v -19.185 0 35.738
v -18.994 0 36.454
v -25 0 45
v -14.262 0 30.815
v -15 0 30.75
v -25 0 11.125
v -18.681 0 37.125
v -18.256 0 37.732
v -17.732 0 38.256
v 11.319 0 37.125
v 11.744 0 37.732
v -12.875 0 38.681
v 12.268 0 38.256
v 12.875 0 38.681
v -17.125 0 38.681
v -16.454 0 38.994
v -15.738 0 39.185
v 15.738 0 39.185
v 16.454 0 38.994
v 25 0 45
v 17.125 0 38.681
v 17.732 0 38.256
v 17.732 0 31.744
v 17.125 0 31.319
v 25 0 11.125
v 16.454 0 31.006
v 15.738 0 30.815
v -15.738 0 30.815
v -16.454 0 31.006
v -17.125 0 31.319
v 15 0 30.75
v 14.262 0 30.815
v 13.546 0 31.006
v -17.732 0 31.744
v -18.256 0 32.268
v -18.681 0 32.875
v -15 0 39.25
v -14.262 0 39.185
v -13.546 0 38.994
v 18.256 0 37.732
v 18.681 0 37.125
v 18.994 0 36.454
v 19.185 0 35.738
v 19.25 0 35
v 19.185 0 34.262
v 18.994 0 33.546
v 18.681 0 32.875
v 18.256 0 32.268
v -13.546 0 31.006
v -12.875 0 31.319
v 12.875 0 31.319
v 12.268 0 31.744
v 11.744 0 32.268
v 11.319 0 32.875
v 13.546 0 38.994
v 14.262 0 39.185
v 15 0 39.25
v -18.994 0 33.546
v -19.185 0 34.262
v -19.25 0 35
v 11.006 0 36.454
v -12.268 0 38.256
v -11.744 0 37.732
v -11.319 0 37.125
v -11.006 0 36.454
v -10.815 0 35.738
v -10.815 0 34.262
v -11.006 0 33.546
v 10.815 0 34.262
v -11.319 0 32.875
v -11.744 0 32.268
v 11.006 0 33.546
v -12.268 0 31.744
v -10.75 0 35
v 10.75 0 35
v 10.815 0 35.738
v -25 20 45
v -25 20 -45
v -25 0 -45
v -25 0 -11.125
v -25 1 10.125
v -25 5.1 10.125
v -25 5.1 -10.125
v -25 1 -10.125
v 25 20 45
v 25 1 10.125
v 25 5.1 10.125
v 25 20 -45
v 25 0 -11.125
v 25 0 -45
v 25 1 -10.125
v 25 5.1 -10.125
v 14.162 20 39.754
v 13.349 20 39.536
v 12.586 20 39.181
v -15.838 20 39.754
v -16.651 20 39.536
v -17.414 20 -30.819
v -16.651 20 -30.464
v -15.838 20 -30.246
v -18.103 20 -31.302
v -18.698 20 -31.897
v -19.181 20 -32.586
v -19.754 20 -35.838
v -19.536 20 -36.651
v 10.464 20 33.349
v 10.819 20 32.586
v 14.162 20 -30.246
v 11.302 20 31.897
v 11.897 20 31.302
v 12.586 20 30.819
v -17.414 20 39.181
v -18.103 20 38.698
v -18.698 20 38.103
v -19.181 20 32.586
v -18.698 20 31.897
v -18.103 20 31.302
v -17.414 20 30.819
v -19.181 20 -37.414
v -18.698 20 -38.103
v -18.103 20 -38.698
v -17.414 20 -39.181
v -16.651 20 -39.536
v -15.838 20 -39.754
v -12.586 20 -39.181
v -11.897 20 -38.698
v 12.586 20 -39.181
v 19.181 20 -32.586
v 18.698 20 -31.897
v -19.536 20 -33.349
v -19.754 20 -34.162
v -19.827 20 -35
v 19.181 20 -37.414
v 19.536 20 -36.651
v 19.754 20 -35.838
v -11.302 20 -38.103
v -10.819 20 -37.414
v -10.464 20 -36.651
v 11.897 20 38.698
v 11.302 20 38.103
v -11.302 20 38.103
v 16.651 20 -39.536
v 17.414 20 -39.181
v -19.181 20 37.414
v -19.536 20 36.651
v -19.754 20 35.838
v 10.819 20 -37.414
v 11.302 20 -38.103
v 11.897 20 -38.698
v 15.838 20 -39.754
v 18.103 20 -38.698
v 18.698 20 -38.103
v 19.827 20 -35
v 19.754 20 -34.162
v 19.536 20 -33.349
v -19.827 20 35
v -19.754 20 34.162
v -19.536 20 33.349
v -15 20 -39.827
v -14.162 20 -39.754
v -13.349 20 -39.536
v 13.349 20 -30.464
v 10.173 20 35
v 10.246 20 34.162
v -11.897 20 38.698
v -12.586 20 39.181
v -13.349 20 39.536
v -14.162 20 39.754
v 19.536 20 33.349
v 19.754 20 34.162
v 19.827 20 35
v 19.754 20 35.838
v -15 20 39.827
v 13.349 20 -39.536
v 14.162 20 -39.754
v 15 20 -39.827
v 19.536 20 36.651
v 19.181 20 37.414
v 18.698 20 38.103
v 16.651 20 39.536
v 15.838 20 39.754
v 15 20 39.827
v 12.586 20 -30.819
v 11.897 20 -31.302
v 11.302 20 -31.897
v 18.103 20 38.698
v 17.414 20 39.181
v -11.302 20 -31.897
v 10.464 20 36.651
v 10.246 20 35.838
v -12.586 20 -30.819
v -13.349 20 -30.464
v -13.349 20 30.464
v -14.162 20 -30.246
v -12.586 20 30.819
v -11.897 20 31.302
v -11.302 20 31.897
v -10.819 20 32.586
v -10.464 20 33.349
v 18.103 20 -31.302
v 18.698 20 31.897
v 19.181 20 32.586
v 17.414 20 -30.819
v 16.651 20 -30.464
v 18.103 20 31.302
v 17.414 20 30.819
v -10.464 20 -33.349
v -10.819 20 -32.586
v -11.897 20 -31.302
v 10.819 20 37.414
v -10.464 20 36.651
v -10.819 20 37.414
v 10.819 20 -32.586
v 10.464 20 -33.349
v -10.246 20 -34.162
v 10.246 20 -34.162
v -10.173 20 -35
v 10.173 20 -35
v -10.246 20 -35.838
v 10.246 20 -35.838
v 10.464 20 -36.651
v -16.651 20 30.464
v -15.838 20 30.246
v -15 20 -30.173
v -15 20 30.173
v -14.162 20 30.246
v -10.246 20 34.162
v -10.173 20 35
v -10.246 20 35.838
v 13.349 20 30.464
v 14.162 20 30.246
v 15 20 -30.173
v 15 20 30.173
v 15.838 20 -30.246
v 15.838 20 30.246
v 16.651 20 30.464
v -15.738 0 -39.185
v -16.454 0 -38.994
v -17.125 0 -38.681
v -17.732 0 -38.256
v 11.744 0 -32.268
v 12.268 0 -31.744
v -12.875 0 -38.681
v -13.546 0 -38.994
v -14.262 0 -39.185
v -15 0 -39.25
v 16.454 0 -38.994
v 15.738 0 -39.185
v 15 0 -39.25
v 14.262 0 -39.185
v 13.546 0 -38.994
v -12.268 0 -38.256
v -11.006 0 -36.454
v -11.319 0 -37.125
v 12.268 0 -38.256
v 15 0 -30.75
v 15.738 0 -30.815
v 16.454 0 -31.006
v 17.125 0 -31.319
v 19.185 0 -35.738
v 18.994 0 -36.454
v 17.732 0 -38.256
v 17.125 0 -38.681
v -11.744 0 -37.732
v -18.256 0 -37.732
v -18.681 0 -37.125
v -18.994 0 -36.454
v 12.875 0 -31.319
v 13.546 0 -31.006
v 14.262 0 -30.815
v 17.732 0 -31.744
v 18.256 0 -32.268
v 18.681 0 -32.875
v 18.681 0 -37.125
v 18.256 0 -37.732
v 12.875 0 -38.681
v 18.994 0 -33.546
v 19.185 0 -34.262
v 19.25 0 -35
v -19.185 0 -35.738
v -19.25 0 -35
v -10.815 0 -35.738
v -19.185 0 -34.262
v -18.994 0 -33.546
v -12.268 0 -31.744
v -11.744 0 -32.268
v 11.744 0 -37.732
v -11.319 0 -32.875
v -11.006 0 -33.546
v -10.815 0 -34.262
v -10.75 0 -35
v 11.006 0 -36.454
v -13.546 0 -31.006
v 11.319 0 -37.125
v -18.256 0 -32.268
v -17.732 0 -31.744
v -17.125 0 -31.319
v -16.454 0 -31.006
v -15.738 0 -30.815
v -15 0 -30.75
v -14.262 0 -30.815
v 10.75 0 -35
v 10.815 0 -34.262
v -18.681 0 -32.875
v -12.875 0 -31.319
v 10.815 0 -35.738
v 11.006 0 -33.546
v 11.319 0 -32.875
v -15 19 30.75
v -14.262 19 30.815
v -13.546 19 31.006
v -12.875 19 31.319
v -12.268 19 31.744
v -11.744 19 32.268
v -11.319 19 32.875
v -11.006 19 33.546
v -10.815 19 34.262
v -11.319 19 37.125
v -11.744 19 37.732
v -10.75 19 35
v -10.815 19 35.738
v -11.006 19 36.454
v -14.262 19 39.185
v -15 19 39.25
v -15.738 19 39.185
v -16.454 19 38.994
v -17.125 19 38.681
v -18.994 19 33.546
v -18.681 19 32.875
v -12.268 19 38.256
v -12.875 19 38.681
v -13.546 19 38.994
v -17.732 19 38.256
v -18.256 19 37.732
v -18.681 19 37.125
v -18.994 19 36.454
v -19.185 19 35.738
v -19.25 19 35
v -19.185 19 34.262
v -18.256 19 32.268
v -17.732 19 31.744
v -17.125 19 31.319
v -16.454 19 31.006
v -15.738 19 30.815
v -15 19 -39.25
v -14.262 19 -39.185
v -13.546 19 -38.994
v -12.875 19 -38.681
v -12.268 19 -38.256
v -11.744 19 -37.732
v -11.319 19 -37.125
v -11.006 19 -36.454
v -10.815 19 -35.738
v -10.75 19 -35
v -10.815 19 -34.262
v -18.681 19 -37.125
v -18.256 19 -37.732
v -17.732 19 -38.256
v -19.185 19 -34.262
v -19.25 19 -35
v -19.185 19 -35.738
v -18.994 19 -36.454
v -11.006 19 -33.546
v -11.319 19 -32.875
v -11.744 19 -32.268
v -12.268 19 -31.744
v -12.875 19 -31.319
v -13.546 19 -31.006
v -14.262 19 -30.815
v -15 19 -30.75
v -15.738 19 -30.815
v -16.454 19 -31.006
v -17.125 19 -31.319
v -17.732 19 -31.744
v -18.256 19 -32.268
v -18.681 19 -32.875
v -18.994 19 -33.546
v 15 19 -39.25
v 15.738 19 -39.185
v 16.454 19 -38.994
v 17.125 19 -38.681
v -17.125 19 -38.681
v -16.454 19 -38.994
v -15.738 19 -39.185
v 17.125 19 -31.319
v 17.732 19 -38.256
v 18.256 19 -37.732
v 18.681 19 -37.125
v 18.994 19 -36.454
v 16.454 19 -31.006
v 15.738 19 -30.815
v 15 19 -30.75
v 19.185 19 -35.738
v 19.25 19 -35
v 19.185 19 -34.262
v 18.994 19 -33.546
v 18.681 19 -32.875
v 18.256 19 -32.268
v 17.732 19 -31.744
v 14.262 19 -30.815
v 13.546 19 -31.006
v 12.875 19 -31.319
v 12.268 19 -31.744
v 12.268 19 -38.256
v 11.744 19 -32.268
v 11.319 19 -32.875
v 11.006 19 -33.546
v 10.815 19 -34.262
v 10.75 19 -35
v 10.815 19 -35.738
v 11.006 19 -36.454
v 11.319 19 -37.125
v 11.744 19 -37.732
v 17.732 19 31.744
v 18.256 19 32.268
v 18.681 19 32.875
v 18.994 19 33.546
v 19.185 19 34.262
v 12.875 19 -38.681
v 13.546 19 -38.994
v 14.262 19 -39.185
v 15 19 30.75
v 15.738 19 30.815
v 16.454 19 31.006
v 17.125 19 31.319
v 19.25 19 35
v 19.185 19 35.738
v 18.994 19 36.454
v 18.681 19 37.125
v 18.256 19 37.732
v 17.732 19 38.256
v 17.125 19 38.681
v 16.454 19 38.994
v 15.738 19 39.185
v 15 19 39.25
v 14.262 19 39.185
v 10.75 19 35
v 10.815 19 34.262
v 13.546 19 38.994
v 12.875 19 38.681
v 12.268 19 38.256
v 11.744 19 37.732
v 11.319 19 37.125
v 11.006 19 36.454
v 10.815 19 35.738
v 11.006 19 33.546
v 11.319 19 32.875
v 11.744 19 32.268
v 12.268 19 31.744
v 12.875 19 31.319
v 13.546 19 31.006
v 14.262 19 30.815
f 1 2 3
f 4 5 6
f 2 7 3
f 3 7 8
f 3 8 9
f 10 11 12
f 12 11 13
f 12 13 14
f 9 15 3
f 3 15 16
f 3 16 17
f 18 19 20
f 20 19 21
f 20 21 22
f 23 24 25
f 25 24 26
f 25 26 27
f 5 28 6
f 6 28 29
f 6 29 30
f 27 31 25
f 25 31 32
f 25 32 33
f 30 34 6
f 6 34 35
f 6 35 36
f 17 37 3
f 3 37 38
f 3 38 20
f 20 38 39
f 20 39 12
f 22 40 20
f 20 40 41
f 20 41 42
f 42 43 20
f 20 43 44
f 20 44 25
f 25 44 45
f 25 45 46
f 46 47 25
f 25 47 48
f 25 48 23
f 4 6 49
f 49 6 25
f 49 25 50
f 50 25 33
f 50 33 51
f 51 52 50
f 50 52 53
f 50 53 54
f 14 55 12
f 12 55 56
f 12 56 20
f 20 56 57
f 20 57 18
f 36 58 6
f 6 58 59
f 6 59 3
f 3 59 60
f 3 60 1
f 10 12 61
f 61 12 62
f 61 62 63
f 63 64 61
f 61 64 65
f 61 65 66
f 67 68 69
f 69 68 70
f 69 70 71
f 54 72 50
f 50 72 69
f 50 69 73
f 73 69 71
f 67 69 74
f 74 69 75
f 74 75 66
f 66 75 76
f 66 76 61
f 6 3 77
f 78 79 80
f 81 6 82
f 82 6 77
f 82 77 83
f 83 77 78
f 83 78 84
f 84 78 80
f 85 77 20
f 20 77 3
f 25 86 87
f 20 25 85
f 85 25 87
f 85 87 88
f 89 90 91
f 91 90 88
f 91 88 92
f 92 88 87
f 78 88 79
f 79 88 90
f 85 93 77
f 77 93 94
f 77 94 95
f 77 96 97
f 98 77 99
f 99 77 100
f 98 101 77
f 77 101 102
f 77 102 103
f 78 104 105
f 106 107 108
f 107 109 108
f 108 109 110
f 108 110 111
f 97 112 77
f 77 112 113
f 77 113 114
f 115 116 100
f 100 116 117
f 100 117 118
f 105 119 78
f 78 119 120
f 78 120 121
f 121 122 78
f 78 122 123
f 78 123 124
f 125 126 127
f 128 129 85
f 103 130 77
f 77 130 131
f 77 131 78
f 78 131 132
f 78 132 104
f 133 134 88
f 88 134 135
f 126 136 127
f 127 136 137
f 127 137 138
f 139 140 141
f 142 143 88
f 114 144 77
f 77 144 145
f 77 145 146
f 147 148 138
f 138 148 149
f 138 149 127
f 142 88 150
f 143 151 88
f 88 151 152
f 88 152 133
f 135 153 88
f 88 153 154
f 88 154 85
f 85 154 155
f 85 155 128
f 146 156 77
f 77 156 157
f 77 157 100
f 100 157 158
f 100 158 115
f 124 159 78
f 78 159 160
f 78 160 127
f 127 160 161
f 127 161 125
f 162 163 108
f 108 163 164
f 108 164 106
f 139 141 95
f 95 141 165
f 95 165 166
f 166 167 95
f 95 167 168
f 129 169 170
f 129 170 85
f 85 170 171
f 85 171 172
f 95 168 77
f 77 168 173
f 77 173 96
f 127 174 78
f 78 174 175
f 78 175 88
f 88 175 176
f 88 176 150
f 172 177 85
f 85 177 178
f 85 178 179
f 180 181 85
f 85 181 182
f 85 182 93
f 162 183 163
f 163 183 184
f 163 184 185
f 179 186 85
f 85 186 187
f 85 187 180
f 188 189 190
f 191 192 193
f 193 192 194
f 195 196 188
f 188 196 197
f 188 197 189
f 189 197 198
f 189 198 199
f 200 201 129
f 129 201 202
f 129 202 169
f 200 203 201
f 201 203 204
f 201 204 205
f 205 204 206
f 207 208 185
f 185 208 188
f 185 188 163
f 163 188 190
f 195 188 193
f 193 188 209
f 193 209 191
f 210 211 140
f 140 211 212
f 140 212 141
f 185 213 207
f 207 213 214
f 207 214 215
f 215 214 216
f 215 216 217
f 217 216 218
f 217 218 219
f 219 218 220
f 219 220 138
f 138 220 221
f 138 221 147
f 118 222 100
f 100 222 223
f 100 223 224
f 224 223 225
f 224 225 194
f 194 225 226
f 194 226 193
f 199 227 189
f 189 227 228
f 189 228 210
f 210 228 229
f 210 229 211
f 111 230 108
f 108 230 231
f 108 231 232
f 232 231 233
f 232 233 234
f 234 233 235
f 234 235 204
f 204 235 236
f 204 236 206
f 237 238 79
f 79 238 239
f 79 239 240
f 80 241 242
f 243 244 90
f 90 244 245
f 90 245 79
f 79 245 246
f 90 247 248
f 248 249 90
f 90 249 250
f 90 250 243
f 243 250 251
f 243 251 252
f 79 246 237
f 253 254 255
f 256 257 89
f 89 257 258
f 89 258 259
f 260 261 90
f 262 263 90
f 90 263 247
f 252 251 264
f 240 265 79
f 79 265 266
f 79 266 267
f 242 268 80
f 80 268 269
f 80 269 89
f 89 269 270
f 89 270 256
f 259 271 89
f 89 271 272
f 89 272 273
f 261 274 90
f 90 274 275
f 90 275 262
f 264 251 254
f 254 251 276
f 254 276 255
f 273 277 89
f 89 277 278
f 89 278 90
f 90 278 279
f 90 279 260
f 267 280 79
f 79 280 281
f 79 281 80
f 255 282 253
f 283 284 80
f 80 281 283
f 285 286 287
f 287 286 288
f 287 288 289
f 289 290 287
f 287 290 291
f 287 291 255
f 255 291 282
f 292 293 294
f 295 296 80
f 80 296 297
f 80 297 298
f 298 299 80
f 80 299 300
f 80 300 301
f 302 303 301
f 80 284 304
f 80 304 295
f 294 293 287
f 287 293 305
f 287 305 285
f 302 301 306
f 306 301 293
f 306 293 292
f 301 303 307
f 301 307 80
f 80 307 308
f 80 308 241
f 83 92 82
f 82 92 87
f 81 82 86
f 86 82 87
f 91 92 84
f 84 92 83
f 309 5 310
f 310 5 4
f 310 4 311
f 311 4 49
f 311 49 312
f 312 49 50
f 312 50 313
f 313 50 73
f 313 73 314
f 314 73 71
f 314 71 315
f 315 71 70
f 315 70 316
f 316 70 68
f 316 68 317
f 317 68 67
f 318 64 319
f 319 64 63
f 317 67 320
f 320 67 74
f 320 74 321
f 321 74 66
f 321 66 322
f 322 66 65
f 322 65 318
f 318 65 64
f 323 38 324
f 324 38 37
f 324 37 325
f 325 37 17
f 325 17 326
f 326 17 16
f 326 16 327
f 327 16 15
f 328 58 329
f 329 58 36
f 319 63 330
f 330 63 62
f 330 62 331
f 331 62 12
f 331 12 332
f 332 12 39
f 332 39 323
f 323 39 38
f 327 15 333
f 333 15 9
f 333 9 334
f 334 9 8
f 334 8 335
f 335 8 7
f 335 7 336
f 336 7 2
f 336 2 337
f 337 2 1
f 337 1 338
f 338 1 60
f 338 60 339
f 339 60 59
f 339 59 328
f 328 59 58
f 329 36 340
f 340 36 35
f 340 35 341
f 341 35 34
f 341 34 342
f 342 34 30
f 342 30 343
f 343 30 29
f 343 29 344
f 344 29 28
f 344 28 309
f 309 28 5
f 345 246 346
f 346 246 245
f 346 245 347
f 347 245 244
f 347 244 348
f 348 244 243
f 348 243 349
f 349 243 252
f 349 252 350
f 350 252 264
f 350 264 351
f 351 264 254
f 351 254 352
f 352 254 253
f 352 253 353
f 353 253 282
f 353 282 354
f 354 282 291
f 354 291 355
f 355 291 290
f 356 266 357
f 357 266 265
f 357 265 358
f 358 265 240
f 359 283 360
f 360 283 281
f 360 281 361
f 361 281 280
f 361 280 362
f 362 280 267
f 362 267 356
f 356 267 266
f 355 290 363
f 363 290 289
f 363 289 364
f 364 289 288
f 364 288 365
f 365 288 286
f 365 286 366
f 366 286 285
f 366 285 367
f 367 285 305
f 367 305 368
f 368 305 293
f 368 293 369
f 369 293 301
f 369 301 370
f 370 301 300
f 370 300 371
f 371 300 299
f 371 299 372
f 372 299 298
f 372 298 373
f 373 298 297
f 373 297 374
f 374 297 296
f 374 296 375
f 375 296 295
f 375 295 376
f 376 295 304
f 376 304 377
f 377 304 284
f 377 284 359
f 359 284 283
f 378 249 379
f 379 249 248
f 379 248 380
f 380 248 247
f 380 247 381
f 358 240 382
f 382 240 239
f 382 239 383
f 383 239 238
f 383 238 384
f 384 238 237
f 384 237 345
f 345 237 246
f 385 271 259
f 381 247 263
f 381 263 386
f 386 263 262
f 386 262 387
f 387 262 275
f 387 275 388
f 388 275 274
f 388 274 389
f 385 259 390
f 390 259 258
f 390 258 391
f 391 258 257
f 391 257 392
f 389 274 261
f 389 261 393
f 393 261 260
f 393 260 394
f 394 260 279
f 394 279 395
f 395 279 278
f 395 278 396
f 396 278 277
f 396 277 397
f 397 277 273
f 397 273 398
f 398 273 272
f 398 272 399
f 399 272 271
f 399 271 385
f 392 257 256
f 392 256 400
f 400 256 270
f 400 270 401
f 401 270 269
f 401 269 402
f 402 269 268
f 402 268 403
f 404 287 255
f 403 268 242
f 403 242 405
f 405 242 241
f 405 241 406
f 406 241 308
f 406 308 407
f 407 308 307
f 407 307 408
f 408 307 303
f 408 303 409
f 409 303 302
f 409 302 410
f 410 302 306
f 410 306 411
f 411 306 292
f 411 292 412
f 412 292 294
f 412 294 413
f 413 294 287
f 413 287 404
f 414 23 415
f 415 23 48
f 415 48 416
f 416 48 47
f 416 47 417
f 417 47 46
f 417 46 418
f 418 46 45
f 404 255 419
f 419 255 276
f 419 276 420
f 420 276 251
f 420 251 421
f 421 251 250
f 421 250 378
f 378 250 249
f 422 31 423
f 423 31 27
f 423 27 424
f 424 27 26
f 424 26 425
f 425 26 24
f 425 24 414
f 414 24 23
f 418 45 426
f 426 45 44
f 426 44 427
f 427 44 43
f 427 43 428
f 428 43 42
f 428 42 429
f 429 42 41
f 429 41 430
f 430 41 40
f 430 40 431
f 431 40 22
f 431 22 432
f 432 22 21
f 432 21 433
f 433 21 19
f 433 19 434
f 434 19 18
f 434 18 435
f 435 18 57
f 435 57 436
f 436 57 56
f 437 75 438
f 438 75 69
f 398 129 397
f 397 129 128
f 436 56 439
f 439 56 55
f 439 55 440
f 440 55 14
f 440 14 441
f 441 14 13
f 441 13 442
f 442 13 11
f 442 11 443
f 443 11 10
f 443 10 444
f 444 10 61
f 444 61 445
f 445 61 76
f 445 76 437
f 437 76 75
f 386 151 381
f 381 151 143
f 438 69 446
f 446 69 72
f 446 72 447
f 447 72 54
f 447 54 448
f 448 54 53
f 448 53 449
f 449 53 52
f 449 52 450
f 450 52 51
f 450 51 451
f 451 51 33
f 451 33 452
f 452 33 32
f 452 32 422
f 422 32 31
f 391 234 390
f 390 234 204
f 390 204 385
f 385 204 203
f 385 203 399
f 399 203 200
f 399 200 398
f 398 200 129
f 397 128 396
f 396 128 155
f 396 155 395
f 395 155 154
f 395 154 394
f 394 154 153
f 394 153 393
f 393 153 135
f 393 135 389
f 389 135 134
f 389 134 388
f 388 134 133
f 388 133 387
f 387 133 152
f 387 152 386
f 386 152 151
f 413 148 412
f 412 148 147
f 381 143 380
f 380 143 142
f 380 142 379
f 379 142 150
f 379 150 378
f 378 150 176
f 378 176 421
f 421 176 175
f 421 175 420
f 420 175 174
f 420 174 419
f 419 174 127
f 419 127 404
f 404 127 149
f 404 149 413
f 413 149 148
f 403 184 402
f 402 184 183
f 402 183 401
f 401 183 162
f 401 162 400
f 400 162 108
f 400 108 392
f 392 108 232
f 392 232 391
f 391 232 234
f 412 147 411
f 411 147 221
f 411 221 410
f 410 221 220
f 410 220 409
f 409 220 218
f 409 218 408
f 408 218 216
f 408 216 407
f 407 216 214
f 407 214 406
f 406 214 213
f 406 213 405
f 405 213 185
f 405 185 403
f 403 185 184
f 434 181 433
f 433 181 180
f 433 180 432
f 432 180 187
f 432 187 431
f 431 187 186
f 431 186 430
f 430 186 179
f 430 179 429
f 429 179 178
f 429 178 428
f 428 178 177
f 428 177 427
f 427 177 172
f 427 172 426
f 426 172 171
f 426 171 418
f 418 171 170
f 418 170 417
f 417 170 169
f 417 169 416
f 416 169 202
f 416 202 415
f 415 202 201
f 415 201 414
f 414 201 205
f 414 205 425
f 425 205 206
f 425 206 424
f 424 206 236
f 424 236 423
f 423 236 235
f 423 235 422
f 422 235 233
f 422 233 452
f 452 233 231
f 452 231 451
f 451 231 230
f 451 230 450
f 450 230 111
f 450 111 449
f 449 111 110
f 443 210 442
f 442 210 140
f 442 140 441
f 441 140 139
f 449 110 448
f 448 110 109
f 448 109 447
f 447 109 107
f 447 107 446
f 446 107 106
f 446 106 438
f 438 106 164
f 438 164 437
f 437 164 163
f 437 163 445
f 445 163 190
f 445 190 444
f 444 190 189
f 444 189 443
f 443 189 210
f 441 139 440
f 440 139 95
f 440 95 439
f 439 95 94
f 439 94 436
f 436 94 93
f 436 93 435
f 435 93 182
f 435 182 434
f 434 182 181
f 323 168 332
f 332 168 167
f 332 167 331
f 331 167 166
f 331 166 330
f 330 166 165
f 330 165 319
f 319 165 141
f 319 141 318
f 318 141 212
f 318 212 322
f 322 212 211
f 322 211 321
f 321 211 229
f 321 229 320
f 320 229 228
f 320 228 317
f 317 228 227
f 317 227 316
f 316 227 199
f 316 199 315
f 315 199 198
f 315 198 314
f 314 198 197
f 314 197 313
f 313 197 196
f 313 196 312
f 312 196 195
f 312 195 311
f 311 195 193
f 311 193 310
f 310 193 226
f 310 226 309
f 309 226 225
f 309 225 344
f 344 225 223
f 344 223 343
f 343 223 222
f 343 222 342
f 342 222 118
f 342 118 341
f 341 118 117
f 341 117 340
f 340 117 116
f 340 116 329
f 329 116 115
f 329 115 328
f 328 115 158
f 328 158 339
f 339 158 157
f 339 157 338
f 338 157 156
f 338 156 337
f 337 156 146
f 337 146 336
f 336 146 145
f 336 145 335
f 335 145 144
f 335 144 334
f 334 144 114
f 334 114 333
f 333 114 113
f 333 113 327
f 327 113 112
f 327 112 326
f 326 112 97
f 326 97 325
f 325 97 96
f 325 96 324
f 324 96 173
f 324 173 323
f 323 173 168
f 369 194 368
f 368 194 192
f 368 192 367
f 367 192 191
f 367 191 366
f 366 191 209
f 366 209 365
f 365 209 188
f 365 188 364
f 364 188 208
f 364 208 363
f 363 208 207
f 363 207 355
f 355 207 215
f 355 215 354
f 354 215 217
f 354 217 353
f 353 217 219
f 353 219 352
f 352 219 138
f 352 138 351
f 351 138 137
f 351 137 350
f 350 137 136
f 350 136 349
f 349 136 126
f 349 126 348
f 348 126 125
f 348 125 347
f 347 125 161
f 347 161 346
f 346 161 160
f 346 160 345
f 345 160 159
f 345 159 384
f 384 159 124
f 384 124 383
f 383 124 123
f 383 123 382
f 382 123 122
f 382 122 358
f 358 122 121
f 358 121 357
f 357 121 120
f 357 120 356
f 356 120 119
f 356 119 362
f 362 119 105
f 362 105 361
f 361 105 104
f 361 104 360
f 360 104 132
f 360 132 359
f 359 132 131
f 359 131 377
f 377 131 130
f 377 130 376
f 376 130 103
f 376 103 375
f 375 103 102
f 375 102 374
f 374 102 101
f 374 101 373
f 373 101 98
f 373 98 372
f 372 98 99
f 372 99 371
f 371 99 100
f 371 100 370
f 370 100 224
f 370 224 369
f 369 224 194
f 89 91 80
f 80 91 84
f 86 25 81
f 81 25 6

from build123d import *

# Parameters (mm, degrees)
SKETCH1_W               = 50
SKETCH1_H               = 90
BOSS_EXTRUDE1_DEPTH     = 20
SKETCH2_W               = 20.25
SKETCH2_H               = 5.1
CUT_EXTRUDE1_DEPTH      = 1
CUT_EXTRUDE1_DEPTH_BACK = 51
SKETCH3_R               = 4.25
CUT_EXTRUDE2_DEPTH      = 21
CHAMFER1_SIZE           = 1
CHAMFER1_SIZE2          = 0.577350269
CHAMFER1_PART_2_SIZE    = 1
CHAMFER1_PART_2_SIZE2   = 0.577350269
CHAMFER1_PART_3_SIZE    = 1
CHAMFER1_PART_3_SIZE2   = 0.577350269
CHAMFER1_PART_4_SIZE    = 1
CHAMFER1_PART_4_SIZE2   = 0.577350269
CHAMFER2_SIZE           = 1


with BuildPart() as part:
    # Sketch1 → Boss-Extrude1 (new body)
    with BuildSketch(Plane(origin=(0, 0, 0), x_dir=(1, 0, 0), z_dir=(0, 1, 0))):
        Rectangle(SKETCH1_W, SKETCH1_H)
    extrude(amount=BOSS_EXTRUDE1_DEPTH)

    # Sketch2 → Cut-Extrude1 (cut, two sides)
    with BuildSketch(Plane(origin=(25, 0, 0), x_dir=(0, 0, -1), z_dir=(1, 0, 0))) as cut_extrude1_sk:
        with Locations((0, 2.55)):
            Rectangle(SKETCH2_W, SKETCH2_H)
    extrude(amount=CUT_EXTRUDE1_DEPTH, mode=Mode.SUBTRACT)
    extrude(cut_extrude1_sk.sketch, amount=-CUT_EXTRUDE1_DEPTH_BACK, mode=Mode.SUBTRACT)

    # Sketch3 → Cut-Extrude2 (cut, through all)
    with BuildSketch(Plane.XZ):
        with Locations((-15, 35)):
            Circle(SKETCH3_R)
        with Locations((-15, -35)):
            Circle(SKETCH3_R)
        with Locations((15, 35)):
            Circle(SKETCH3_R)
        with Locations((15, -35)):
            Circle(SKETCH3_R)
    extrude(amount=-CUT_EXTRUDE2_DEPTH, mode=Mode.SUBTRACT)

    # Chamfer1
    chamfer1_edges = [part.edges().sort_by_distance(p)[0] for p in [
        (-19.25, 20, 35),
    ]]
    chamfer1_side = [part.faces().sort_by_distance(p)[0] for p in [
        (-19.25, 10, 35),
    ]]
    chamfer(chamfer1_edges, length=CHAMFER1_SIZE, length2=CHAMFER1_SIZE2, reference=chamfer1_side[0])

    # Chamfer1 part 2
    chamfer1_part_2_edges = [part.edges().sort_by_distance(p)[0] for p in [
        (10.75, 20, 35),
    ]]
    chamfer1_part_2_side = [part.faces().sort_by_distance(p)[0] for p in [
        (10.75, 10, 35),
    ]]
    chamfer(chamfer1_part_2_edges, length=CHAMFER1_PART_2_SIZE, length2=CHAMFER1_PART_2_SIZE2, reference=chamfer1_part_2_side[0])

    # Chamfer1 part 3
    chamfer1_part_3_edges = [part.edges().sort_by_distance(p)[0] for p in [
        (10.75, 20, -35),
    ]]
    chamfer1_part_3_side = [part.faces().sort_by_distance(p)[0] for p in [
        (10.75, 10, -35),
    ]]
    chamfer(chamfer1_part_3_edges, length=CHAMFER1_PART_3_SIZE, length2=CHAMFER1_PART_3_SIZE2, reference=chamfer1_part_3_side[0])

    # Chamfer1 part 4
    chamfer1_part_4_edges = [part.edges().sort_by_distance(p)[0] for p in [
        (-19.25, 20, -35),
    ]]
    chamfer1_part_4_side = [part.faces().sort_by_distance(p)[0] for p in [
        (-19.25, 10, -35),
    ]]
    chamfer(chamfer1_part_4_edges, length=CHAMFER1_PART_4_SIZE, length2=CHAMFER1_PART_4_SIZE2, reference=chamfer1_part_4_side[0])

    # Chamfer2
    chamfer2_edges = [part.edges().sort_by_distance(p)[0] for p in [
        (0, 0, -10.125),
        (0, 0, 10.125),
    ]]
    chamfer(chamfer2_edges, length=CHAMFER2_SIZE)


solid = part.part
